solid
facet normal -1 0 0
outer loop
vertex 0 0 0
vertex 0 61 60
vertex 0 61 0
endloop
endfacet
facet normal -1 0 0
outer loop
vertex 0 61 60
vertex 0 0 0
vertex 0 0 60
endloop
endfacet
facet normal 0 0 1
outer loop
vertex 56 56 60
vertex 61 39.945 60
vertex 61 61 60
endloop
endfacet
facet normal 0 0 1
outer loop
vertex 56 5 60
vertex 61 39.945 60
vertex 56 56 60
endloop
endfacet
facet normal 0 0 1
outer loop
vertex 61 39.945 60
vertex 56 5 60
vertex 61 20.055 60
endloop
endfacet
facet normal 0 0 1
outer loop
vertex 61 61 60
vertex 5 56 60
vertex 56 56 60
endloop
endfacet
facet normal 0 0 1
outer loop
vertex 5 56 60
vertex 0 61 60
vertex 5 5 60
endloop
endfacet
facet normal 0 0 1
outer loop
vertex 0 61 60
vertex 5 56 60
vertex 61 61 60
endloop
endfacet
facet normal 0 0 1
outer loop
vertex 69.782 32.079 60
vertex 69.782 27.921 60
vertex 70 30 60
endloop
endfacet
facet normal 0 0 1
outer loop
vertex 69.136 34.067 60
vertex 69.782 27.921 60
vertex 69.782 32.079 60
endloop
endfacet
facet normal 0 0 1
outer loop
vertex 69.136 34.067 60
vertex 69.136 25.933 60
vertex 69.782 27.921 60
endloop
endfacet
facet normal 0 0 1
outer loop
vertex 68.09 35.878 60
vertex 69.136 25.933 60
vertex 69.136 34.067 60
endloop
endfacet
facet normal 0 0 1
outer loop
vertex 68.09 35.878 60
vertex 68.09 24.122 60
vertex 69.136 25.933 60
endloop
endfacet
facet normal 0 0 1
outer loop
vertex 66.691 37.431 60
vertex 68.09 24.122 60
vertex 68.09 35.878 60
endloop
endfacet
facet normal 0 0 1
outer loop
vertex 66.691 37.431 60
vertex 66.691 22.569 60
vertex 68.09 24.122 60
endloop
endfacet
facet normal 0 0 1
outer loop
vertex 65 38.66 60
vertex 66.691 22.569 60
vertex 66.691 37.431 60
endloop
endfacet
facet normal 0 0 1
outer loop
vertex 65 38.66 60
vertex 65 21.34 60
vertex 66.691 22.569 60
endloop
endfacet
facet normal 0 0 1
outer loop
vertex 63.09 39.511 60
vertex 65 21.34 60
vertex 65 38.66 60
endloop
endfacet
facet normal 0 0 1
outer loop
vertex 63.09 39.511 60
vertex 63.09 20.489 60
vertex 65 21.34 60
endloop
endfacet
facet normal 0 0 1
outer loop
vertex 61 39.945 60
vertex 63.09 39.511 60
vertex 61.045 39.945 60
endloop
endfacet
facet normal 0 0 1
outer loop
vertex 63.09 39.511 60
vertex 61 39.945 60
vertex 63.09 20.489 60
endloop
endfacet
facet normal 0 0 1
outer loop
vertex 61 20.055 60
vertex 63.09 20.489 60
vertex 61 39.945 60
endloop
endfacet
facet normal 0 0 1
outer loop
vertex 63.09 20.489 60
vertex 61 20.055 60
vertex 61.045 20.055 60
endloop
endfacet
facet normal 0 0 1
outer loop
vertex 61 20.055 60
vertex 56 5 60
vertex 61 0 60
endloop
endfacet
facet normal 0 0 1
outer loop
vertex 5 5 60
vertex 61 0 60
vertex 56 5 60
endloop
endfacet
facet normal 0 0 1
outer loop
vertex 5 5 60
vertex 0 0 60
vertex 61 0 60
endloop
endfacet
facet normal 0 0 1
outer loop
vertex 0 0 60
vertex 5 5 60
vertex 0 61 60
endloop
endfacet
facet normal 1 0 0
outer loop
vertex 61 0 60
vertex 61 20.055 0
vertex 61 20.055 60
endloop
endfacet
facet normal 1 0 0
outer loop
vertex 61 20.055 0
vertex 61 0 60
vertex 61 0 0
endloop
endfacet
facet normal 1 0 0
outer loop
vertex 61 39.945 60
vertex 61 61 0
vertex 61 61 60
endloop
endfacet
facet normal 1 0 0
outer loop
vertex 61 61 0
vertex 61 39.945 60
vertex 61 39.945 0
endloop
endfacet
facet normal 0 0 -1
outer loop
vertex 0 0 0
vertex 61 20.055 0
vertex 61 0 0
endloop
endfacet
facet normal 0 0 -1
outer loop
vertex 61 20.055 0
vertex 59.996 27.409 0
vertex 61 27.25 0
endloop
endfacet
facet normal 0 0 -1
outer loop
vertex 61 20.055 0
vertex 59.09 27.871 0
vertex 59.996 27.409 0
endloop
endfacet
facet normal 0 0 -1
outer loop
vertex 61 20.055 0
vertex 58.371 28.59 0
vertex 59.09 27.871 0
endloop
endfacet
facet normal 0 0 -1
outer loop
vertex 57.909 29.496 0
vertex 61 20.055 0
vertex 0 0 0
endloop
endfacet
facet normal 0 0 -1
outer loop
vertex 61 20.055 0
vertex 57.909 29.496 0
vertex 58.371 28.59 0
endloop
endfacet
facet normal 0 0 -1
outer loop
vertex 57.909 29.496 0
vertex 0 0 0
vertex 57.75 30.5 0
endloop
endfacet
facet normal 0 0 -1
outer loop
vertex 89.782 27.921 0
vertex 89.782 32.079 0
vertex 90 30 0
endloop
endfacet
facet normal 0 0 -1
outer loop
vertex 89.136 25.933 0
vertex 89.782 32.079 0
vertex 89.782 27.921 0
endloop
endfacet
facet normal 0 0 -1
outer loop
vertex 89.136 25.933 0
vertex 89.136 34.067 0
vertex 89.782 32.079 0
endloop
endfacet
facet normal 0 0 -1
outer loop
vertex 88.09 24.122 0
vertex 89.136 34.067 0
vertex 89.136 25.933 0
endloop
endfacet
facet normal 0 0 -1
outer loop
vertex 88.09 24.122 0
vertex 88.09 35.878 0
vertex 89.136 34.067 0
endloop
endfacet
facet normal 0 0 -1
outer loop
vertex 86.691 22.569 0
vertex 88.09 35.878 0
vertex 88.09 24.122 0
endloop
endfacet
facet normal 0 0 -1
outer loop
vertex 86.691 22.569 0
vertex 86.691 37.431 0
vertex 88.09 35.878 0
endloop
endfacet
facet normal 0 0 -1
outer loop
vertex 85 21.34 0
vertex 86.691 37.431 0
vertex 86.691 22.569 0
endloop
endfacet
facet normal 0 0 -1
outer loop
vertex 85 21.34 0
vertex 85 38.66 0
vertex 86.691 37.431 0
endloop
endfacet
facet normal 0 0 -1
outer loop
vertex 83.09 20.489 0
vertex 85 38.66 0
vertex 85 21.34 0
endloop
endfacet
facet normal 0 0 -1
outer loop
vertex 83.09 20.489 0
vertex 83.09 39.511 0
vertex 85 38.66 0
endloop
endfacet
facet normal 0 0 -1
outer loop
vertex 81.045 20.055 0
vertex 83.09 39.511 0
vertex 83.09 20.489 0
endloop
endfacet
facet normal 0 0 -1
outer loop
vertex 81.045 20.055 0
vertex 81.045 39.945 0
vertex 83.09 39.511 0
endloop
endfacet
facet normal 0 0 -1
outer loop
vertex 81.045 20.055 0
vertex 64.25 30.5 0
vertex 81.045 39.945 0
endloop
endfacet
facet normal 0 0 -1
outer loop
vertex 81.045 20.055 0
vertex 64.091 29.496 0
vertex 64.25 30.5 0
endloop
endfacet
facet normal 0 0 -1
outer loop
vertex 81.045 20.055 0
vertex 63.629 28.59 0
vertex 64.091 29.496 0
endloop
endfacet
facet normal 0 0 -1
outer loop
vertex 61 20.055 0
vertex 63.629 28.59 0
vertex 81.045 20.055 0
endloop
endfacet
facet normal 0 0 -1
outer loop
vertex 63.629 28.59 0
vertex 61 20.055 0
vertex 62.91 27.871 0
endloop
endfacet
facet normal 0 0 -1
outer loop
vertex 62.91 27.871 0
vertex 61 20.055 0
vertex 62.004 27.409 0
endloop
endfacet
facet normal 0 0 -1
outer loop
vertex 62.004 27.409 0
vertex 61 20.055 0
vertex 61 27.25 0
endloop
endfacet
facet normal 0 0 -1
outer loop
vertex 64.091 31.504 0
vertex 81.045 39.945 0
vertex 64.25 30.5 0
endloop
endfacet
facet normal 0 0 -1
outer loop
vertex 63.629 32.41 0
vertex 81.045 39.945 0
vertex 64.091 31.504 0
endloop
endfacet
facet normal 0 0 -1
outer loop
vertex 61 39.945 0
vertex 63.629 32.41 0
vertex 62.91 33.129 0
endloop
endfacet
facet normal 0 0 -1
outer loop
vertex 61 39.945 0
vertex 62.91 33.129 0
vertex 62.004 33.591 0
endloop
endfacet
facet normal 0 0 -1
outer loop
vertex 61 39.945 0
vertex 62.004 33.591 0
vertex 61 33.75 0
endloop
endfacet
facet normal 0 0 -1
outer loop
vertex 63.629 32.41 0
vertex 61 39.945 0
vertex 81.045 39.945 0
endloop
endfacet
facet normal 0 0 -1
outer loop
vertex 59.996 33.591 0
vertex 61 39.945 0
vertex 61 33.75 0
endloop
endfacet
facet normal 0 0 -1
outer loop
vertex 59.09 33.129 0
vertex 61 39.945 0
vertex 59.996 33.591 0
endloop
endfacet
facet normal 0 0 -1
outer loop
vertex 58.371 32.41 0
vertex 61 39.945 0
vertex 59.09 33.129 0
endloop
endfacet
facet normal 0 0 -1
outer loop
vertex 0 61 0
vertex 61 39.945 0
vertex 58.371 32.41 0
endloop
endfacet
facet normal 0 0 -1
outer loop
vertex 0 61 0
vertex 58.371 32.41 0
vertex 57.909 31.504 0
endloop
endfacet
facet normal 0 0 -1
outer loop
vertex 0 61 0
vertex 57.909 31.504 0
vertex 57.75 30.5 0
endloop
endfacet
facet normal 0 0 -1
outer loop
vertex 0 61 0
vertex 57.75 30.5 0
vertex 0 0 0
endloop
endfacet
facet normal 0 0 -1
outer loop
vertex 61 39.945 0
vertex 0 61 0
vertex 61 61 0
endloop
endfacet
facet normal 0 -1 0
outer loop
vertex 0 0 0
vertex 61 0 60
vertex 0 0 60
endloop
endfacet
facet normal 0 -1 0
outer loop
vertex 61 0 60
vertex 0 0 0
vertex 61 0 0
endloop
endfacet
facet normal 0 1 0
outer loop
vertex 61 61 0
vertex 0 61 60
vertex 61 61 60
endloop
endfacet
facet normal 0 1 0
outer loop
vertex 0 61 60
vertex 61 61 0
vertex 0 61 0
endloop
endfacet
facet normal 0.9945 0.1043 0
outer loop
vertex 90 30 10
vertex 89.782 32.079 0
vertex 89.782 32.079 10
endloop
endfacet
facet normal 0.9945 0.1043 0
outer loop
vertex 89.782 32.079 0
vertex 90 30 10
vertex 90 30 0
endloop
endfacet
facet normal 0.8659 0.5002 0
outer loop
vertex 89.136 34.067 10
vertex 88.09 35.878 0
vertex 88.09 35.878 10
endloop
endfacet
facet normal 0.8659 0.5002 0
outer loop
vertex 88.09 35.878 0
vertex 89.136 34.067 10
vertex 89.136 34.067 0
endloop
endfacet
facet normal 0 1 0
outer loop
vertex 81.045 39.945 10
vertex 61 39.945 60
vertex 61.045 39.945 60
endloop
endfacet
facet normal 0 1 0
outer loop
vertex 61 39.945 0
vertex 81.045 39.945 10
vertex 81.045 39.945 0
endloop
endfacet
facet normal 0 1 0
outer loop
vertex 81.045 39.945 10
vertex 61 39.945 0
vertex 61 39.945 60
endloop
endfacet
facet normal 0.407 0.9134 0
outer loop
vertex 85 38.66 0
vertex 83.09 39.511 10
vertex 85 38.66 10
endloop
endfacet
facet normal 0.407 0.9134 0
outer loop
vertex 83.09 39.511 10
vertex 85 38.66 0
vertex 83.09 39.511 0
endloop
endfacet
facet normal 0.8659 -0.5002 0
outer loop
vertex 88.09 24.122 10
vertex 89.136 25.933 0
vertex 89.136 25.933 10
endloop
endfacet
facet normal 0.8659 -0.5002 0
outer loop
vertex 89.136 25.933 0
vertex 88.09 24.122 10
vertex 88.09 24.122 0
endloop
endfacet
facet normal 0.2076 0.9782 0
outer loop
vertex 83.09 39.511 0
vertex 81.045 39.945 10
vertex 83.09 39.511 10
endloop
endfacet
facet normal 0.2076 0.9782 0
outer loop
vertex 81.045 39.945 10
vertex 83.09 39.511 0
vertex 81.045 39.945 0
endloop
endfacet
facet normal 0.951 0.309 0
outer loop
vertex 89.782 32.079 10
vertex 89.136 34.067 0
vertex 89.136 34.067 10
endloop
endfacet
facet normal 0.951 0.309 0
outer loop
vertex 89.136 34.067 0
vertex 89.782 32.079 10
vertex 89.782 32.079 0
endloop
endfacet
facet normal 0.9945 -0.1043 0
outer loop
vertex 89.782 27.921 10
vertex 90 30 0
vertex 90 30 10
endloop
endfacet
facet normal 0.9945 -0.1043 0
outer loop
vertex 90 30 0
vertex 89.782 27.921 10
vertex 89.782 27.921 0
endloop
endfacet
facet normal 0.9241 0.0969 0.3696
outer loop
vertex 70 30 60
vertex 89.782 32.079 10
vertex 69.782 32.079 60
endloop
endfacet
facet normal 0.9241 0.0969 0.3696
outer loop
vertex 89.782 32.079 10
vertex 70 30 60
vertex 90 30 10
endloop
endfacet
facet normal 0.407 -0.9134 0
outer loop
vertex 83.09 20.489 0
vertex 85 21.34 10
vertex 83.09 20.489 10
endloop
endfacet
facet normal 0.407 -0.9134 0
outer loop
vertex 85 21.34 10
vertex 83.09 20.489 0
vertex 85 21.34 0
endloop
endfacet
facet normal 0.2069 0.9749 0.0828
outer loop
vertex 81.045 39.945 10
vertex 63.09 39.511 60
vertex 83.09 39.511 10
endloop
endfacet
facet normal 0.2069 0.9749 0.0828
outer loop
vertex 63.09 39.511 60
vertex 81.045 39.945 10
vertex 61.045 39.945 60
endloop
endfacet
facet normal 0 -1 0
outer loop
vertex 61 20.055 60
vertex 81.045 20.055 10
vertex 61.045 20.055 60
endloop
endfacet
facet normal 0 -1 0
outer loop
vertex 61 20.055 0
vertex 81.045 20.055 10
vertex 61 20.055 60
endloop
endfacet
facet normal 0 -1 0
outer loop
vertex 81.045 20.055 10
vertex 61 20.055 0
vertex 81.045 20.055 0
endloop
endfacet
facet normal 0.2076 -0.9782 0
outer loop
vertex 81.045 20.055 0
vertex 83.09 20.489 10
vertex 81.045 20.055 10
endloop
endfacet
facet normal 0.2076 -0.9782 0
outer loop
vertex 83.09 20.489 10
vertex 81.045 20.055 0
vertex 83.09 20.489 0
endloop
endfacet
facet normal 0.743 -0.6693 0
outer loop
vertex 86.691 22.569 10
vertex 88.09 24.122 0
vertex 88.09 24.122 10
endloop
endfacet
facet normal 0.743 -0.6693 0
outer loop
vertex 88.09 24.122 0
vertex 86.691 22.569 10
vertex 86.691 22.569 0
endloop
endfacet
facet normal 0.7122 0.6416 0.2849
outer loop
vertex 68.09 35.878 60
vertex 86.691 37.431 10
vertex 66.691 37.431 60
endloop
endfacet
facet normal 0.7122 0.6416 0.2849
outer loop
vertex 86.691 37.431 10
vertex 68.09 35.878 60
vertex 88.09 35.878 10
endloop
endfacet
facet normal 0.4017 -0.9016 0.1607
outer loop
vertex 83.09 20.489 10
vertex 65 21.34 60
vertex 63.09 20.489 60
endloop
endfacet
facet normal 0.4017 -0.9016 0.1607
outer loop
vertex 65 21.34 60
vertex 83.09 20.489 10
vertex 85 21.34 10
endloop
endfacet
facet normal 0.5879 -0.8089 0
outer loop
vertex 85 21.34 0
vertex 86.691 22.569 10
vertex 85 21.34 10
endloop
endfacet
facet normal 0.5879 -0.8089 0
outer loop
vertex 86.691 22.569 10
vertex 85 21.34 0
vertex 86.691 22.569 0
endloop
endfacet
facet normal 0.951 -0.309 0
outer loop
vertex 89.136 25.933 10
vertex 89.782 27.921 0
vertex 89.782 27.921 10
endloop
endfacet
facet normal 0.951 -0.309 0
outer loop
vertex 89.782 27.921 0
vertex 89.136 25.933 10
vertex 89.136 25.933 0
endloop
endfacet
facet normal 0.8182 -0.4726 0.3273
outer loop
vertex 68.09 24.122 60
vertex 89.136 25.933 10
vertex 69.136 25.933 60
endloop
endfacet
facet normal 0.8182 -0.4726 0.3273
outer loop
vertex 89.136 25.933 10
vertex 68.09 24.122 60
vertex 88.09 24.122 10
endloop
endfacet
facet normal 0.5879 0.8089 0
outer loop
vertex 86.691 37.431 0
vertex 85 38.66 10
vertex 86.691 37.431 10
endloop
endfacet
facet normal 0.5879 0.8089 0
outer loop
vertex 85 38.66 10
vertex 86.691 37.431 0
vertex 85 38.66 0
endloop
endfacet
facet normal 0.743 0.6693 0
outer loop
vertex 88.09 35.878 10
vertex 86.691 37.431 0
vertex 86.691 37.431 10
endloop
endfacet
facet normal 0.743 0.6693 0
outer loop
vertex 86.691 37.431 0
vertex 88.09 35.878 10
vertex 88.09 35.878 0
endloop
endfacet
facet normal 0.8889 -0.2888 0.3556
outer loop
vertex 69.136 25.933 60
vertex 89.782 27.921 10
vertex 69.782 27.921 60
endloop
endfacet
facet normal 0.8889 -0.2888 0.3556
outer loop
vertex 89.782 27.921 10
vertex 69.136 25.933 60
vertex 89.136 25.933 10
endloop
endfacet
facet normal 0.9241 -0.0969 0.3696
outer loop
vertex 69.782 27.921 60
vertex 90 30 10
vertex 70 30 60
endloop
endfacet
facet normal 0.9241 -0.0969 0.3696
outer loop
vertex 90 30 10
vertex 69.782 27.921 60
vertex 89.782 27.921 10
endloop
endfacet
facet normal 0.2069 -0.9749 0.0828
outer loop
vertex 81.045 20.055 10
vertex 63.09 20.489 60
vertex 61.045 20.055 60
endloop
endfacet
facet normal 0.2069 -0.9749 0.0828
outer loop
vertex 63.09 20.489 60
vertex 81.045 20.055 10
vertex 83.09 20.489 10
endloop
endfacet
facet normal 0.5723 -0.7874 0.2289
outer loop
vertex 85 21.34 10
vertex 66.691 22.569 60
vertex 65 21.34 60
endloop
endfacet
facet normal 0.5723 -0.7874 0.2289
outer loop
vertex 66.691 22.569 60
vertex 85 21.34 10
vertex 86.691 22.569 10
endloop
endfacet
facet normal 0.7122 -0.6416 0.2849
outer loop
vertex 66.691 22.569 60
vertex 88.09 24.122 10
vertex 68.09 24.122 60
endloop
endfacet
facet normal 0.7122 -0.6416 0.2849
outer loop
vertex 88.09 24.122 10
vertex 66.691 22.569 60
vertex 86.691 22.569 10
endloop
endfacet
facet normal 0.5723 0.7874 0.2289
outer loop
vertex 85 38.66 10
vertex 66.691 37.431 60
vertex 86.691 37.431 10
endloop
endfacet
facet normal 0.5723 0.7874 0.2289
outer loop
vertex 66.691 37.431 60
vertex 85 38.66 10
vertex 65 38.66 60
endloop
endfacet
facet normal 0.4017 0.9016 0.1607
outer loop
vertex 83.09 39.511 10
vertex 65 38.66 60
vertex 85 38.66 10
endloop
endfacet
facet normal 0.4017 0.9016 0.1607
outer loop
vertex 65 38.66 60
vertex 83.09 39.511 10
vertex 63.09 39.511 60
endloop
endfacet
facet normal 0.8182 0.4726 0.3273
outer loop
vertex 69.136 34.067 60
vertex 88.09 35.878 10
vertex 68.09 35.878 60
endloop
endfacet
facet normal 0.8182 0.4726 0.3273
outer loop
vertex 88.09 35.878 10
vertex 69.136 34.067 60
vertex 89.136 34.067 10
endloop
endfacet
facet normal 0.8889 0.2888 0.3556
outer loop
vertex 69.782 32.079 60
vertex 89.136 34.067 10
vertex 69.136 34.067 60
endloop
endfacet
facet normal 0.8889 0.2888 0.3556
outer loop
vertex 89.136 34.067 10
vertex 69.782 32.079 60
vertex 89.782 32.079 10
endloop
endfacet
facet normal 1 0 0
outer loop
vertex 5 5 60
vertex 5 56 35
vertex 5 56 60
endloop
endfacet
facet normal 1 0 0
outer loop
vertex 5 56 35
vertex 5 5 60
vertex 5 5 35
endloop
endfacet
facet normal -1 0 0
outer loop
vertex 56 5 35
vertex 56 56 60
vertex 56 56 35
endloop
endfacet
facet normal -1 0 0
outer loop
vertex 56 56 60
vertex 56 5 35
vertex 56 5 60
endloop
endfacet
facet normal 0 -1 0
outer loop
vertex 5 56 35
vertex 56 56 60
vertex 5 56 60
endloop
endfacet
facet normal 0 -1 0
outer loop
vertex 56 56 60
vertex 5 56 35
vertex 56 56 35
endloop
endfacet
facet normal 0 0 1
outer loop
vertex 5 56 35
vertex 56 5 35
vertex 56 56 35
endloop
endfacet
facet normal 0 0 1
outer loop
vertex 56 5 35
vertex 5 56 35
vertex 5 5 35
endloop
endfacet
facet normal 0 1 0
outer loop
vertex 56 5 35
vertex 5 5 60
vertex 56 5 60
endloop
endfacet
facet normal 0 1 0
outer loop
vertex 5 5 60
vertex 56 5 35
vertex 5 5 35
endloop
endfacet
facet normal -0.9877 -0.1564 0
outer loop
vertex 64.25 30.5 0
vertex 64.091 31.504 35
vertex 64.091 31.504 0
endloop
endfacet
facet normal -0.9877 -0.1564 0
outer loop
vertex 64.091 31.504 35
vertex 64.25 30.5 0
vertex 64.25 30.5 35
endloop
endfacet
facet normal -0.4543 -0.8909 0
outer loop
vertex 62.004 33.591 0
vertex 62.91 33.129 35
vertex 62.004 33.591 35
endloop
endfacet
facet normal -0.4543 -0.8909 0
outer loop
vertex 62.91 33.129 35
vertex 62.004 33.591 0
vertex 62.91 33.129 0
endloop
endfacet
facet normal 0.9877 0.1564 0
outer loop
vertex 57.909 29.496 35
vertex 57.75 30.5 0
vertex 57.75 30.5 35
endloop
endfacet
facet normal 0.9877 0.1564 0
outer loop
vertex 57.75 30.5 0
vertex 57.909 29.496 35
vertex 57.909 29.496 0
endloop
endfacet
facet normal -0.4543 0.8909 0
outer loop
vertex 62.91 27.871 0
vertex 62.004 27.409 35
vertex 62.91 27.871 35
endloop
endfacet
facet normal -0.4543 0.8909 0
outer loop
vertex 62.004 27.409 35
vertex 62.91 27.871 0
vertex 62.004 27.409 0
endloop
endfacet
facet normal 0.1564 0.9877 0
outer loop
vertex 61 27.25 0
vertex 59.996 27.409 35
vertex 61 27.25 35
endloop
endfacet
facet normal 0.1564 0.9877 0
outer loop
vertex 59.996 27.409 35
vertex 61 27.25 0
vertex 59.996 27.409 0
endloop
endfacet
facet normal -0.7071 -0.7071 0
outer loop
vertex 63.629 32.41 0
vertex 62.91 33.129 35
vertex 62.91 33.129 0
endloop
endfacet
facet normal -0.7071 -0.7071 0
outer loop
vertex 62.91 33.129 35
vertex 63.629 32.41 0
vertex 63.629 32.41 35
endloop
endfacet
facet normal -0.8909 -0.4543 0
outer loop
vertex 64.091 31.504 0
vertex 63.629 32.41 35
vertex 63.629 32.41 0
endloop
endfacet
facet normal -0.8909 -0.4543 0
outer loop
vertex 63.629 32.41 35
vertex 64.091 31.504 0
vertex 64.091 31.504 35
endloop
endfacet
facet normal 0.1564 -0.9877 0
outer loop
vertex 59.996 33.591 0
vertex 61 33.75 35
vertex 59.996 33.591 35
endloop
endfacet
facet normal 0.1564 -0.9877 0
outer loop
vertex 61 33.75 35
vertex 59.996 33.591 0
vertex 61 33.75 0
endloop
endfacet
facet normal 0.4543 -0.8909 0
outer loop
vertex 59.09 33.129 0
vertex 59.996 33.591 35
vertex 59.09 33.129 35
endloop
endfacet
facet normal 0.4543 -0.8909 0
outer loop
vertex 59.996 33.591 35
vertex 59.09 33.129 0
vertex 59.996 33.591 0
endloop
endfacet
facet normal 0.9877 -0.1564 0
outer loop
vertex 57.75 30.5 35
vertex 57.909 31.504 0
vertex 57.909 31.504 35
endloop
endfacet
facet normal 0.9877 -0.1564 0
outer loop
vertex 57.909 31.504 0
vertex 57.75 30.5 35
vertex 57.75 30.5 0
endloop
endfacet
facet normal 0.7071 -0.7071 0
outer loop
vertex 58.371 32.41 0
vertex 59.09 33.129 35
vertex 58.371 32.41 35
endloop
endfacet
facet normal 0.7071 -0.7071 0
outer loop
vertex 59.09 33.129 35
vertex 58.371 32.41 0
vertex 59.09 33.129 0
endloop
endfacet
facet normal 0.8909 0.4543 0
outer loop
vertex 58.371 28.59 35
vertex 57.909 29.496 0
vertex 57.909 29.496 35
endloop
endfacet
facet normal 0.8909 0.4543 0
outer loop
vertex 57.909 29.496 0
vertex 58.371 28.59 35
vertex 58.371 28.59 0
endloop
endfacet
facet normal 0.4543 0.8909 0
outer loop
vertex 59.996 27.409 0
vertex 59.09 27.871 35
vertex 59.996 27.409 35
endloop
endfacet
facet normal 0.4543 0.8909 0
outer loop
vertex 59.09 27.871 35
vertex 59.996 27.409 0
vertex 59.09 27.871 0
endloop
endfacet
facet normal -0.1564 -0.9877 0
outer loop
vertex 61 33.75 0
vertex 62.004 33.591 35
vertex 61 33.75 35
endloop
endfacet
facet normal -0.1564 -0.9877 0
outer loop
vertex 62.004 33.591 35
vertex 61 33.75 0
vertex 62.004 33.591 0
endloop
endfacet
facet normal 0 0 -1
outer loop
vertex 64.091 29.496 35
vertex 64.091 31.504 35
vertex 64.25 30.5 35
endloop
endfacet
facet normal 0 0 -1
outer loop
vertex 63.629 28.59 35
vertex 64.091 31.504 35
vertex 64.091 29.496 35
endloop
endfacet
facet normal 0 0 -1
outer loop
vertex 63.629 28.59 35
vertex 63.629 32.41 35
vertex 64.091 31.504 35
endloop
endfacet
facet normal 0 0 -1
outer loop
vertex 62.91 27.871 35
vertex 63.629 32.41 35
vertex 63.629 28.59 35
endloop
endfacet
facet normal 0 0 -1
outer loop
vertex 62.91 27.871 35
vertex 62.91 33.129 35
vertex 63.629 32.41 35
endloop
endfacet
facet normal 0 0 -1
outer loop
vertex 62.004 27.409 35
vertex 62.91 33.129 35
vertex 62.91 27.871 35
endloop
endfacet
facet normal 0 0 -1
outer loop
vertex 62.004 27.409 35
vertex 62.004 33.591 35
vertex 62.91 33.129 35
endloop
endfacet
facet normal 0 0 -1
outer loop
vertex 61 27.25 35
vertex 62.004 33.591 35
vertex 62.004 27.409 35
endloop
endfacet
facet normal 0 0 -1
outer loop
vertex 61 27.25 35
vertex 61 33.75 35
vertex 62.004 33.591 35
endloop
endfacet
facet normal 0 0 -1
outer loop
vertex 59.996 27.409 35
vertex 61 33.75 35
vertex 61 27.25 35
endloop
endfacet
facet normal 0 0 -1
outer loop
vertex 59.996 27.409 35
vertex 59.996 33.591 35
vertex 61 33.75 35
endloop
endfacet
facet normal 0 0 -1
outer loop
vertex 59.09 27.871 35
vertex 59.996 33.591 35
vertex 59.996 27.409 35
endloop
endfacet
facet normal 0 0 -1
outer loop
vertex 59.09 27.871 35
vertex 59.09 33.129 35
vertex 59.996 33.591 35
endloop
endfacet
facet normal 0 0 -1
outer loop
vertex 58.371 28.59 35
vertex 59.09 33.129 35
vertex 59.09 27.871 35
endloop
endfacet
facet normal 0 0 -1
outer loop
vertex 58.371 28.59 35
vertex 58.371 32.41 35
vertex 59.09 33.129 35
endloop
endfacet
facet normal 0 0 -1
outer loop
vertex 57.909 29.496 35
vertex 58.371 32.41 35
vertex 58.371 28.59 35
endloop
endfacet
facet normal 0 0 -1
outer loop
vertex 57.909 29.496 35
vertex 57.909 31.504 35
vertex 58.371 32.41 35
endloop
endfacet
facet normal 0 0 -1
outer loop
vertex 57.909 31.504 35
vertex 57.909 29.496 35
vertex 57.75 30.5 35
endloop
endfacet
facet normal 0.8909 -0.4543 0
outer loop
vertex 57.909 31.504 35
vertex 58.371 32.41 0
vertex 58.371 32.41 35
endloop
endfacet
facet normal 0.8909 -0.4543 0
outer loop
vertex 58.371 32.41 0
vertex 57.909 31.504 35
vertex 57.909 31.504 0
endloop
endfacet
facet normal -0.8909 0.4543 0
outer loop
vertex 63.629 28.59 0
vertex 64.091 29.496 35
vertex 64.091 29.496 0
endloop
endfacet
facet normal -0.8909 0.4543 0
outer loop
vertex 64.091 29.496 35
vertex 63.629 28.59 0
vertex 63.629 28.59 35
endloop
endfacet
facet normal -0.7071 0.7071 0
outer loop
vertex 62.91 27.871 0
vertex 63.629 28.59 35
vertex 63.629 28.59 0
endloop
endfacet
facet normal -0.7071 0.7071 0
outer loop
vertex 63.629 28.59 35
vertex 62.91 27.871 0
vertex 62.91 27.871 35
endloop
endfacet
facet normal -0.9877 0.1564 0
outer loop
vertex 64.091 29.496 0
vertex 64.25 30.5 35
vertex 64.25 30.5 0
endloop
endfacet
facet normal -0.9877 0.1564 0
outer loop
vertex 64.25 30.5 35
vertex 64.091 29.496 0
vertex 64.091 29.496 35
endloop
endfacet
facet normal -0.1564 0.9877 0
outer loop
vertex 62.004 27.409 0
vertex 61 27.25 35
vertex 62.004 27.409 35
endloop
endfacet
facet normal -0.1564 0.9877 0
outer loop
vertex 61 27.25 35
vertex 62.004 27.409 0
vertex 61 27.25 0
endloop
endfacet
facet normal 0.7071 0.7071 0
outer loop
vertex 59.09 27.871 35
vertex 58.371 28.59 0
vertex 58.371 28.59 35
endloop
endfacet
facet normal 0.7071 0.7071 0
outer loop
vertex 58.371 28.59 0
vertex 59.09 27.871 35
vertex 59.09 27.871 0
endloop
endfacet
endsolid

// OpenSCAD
difference() {
    mount();
    translate([5, 5, 35]) 
        leg();
    translate([61, 30.5, 0]) 
        cylinder(r=3.25, h=35, $fn=20);

}

module mount() {
    cube(size=[61, 61, 60]);
    hull(){
        translate([80, 30, 0]) 
            mountPoint();
    }
    
}

module mountPoint() {
    hull() {
        cylinder(r=10, h=10);
        translate([-20, 0, 0]) 
            cylinder(r=10, h=60);
    }
}

module leg() {
    #cube(size=[51, 51, 100]);
}


	
module screw(h=20, r=2, r_head=3.5, head_drop=0, slant=i_am_box, poly=false, $fn=0){
    //makes screw with head
    //for substraction as screw hole
    if (poly) {
        cylinder_poly(h=h, r=r, $fn=$fn);
    } else {
        cylinder(h=h, r=r, $fn=$fn);
    }
    if (slant) {
        translate([0, 0, head_drop-0.01]) cylinder(h=r_head, r2=0, r1=r_head, $fn=$fn);
    }

    if (head_drop > 0) {
        translate([0, 0, -0.01]) cylinder(h=head_drop+0.01, r=r_head, $fn=$fn);
    }
}

module plate_screw(long=0) {

        translate([0, 0, -2 - long]) screw(head_drop=14 + long, h=30 + long, r_head=4.5, r=2, $fn=24, slant=true);
    
}
